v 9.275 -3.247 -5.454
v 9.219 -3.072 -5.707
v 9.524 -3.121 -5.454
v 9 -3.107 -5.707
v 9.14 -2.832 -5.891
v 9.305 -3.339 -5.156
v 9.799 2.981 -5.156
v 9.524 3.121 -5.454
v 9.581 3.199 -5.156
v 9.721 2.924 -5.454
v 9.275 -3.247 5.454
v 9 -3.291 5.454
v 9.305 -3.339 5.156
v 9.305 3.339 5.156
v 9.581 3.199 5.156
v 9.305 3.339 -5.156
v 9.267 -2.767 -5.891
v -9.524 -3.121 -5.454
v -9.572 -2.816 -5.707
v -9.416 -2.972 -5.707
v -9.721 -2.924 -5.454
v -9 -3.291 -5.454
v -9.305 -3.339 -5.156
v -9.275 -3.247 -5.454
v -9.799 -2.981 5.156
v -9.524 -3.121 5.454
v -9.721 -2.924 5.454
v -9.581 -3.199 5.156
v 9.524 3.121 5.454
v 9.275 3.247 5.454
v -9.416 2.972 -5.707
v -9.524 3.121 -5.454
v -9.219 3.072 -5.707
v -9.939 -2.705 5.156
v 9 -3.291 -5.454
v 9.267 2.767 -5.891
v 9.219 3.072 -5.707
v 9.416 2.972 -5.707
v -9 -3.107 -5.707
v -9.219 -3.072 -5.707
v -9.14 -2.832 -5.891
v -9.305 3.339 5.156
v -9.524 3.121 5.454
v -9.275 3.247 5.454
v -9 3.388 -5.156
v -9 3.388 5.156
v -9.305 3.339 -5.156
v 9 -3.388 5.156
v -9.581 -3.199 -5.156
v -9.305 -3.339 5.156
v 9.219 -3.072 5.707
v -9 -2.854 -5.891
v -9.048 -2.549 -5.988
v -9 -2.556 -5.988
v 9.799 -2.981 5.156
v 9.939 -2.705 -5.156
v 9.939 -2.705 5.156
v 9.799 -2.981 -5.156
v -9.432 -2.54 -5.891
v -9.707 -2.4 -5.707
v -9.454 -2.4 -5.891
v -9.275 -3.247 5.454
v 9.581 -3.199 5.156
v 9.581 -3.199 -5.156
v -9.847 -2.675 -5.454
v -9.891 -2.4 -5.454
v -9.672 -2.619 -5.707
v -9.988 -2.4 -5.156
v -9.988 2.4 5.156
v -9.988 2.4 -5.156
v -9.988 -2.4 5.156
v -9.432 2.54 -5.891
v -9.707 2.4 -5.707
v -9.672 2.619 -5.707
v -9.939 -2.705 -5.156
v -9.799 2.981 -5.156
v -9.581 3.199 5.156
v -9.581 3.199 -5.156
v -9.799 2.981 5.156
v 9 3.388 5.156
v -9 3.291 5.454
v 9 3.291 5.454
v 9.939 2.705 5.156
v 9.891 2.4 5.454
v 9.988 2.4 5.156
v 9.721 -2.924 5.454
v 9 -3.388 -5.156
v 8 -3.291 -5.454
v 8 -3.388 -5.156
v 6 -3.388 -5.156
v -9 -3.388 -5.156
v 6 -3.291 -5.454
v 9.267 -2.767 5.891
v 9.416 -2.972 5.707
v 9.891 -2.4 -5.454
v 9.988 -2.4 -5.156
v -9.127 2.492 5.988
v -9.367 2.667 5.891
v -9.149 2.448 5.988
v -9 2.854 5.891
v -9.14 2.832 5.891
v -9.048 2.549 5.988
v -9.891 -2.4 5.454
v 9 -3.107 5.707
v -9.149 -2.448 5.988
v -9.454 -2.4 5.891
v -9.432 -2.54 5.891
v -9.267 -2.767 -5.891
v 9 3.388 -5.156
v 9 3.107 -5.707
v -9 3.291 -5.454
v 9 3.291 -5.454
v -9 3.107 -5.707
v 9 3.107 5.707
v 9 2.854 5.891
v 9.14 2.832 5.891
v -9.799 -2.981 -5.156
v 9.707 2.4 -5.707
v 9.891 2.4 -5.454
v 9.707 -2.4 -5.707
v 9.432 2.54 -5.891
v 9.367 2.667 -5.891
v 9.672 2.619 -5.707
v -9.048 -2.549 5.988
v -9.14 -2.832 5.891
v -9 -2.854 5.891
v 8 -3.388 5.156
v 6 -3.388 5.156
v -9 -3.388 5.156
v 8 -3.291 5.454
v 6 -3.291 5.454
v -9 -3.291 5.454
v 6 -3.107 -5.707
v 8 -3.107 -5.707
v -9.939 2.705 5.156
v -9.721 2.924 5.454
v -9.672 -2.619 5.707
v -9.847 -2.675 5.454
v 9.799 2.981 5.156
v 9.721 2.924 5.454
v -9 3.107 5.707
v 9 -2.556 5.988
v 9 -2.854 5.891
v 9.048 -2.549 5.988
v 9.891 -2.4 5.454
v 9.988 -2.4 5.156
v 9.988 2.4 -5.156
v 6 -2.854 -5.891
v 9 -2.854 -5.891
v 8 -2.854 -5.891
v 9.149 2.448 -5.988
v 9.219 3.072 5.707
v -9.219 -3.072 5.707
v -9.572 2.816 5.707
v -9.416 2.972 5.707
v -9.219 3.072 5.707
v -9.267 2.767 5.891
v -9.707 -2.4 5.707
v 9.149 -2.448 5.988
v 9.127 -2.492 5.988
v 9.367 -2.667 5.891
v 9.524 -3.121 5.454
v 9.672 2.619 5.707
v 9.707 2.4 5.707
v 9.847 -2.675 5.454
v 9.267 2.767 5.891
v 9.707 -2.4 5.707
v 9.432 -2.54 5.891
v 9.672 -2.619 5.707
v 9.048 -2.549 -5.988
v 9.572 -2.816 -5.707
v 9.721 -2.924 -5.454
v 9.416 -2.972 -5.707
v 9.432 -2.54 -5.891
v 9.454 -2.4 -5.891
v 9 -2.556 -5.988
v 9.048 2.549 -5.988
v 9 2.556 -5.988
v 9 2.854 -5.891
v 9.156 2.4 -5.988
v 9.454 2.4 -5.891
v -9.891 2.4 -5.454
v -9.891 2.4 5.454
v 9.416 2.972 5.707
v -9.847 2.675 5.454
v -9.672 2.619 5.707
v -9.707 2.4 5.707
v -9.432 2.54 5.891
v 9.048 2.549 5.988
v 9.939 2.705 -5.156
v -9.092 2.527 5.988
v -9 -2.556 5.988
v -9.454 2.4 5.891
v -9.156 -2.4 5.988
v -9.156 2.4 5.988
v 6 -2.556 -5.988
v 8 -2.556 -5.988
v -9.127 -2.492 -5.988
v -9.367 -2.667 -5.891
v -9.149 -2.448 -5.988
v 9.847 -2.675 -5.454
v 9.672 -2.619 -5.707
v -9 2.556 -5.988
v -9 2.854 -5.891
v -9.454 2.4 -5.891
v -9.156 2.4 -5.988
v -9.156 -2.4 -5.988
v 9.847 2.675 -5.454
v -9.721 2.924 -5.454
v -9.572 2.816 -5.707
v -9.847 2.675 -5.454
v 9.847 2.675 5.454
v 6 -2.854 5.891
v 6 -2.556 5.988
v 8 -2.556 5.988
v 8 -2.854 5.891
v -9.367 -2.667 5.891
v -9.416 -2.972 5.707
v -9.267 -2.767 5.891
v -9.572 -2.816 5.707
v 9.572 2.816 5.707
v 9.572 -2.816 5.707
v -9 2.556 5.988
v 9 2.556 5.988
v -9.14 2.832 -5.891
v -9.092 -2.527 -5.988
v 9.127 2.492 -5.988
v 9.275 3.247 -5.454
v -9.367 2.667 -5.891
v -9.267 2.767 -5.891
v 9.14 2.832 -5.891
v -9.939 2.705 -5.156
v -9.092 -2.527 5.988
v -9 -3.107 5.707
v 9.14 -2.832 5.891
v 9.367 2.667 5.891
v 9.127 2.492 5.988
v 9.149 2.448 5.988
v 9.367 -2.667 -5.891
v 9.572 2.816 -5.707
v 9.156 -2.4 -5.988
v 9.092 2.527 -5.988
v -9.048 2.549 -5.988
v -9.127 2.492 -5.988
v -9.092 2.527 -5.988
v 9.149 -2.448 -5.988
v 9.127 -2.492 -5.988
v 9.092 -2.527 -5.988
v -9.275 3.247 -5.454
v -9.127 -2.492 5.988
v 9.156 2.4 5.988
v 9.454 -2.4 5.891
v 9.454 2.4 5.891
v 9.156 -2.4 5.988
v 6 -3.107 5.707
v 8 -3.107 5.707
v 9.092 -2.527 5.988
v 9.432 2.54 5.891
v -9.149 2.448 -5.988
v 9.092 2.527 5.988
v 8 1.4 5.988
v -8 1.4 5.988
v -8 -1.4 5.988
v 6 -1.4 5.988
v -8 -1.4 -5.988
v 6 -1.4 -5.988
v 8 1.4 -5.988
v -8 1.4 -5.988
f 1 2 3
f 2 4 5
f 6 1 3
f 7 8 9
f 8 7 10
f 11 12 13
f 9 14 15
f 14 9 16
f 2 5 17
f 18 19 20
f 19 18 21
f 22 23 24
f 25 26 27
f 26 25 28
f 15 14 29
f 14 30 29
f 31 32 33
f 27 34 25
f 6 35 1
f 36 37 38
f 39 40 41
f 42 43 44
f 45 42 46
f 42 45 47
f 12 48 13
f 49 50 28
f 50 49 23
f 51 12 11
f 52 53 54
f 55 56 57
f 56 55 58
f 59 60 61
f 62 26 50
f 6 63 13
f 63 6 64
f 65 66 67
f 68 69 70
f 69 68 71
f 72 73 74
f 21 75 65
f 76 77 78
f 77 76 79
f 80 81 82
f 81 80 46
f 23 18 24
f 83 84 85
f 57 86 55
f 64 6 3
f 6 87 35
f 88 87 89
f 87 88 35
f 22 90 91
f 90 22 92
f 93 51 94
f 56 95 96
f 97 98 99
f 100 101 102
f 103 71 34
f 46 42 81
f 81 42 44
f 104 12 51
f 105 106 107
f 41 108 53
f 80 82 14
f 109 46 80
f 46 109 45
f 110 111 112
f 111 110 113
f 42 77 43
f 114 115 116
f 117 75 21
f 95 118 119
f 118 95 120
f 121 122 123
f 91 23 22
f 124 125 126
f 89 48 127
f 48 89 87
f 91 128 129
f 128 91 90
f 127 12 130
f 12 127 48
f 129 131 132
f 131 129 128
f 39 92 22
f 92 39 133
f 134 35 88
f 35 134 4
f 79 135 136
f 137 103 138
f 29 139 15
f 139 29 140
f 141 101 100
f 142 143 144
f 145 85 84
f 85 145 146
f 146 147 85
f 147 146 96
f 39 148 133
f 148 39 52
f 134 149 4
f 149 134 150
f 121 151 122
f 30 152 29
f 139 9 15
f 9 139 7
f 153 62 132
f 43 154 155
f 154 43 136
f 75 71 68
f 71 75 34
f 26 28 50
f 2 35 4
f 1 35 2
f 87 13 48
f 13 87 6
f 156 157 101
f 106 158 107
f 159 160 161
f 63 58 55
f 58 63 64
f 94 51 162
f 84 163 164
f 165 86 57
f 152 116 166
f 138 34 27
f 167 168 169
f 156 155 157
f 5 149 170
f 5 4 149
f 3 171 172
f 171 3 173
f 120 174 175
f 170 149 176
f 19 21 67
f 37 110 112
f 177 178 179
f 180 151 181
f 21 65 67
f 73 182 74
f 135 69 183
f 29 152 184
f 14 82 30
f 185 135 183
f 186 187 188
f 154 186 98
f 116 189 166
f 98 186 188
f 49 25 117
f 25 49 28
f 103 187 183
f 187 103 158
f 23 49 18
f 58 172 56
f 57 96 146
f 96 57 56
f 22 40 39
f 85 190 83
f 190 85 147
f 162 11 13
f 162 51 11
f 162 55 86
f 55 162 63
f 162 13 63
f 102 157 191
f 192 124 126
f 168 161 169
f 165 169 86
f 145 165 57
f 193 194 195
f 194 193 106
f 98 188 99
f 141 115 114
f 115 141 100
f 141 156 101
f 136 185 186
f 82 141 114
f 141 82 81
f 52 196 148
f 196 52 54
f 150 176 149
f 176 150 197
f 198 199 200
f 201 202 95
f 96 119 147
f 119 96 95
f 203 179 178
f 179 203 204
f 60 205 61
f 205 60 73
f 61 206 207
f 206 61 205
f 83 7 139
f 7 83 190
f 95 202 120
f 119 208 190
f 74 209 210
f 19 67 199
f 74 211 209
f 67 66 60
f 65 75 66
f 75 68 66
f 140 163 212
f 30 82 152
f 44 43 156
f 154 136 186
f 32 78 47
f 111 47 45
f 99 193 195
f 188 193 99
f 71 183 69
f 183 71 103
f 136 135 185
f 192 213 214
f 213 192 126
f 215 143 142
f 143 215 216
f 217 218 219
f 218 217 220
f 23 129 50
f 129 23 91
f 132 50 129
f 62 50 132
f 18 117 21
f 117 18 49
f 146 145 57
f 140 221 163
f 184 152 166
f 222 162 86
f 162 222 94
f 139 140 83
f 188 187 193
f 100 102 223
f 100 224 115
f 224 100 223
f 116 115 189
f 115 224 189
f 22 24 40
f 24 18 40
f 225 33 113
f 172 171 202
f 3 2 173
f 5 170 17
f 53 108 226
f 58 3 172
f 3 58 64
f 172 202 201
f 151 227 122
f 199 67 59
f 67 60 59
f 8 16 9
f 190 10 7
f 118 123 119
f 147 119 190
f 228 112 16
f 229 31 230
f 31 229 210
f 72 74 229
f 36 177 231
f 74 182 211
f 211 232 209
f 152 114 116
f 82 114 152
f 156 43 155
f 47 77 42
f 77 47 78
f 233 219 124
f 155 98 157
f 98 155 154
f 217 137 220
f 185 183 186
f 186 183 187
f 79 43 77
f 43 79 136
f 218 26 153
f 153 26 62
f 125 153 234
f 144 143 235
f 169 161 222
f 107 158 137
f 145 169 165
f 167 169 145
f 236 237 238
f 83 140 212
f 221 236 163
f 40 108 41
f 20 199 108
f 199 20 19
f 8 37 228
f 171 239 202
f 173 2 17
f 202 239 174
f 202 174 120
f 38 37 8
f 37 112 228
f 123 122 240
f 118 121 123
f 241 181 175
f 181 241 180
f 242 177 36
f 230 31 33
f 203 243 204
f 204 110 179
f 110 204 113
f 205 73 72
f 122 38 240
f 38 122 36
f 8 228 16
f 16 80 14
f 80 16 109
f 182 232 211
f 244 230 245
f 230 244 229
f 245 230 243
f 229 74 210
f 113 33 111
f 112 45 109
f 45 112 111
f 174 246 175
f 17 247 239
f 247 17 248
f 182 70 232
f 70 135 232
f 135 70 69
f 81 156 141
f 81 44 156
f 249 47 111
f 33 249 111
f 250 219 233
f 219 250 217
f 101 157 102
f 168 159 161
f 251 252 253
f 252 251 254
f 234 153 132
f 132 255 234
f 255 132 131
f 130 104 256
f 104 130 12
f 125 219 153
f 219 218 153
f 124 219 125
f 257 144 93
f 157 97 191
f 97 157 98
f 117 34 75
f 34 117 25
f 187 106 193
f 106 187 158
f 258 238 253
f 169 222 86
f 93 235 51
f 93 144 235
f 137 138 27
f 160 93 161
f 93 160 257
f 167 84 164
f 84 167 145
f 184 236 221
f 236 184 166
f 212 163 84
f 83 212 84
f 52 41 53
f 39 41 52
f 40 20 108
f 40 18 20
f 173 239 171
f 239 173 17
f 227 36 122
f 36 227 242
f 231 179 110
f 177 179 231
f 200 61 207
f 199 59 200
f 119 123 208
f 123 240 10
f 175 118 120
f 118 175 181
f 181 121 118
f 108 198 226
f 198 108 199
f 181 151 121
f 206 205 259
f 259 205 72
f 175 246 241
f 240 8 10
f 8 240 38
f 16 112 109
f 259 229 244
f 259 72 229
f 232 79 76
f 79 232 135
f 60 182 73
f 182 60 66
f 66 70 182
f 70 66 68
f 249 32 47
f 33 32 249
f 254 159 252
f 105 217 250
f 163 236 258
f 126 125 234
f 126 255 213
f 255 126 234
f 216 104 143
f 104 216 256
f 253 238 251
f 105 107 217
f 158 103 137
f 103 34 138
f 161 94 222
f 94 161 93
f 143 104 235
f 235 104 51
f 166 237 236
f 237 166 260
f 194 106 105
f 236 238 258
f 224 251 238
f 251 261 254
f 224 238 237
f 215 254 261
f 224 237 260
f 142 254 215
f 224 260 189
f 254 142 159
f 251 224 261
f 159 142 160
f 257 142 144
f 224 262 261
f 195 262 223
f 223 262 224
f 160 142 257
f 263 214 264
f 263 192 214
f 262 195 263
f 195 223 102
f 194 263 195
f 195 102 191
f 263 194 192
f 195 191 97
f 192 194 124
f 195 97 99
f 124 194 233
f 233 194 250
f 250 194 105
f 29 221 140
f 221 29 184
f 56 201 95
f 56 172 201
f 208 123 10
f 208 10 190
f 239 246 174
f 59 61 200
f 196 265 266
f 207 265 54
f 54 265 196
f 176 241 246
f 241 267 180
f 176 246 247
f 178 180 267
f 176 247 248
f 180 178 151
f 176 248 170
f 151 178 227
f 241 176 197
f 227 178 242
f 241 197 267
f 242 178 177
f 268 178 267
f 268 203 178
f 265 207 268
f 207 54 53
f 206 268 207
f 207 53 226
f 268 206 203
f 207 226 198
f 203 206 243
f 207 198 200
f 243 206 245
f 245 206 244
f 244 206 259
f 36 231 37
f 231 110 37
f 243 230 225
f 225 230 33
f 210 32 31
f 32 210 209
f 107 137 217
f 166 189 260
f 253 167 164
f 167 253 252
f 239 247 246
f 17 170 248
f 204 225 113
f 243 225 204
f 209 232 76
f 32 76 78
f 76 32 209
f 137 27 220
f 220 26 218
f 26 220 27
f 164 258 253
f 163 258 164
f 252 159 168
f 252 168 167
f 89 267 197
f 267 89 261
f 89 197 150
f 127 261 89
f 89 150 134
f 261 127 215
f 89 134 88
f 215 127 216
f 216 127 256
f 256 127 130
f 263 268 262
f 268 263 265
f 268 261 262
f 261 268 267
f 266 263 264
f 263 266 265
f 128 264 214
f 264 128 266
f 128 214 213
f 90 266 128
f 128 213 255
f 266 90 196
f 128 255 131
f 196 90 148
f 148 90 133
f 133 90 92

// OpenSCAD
x=15 + 1.0;
y=2.5 + 0.3;
z=10;

difference() {
    // body
    minkowski() {
        cube([x+2, y+2, z], center=true);
        sphere(r=1, $fn=20);
    }

    // inner hole
    cube([x, y, z+4], center=true);

    // opening
    translate([7, -2, 0])
        cube([2, 4, z+4], center=true);
}
